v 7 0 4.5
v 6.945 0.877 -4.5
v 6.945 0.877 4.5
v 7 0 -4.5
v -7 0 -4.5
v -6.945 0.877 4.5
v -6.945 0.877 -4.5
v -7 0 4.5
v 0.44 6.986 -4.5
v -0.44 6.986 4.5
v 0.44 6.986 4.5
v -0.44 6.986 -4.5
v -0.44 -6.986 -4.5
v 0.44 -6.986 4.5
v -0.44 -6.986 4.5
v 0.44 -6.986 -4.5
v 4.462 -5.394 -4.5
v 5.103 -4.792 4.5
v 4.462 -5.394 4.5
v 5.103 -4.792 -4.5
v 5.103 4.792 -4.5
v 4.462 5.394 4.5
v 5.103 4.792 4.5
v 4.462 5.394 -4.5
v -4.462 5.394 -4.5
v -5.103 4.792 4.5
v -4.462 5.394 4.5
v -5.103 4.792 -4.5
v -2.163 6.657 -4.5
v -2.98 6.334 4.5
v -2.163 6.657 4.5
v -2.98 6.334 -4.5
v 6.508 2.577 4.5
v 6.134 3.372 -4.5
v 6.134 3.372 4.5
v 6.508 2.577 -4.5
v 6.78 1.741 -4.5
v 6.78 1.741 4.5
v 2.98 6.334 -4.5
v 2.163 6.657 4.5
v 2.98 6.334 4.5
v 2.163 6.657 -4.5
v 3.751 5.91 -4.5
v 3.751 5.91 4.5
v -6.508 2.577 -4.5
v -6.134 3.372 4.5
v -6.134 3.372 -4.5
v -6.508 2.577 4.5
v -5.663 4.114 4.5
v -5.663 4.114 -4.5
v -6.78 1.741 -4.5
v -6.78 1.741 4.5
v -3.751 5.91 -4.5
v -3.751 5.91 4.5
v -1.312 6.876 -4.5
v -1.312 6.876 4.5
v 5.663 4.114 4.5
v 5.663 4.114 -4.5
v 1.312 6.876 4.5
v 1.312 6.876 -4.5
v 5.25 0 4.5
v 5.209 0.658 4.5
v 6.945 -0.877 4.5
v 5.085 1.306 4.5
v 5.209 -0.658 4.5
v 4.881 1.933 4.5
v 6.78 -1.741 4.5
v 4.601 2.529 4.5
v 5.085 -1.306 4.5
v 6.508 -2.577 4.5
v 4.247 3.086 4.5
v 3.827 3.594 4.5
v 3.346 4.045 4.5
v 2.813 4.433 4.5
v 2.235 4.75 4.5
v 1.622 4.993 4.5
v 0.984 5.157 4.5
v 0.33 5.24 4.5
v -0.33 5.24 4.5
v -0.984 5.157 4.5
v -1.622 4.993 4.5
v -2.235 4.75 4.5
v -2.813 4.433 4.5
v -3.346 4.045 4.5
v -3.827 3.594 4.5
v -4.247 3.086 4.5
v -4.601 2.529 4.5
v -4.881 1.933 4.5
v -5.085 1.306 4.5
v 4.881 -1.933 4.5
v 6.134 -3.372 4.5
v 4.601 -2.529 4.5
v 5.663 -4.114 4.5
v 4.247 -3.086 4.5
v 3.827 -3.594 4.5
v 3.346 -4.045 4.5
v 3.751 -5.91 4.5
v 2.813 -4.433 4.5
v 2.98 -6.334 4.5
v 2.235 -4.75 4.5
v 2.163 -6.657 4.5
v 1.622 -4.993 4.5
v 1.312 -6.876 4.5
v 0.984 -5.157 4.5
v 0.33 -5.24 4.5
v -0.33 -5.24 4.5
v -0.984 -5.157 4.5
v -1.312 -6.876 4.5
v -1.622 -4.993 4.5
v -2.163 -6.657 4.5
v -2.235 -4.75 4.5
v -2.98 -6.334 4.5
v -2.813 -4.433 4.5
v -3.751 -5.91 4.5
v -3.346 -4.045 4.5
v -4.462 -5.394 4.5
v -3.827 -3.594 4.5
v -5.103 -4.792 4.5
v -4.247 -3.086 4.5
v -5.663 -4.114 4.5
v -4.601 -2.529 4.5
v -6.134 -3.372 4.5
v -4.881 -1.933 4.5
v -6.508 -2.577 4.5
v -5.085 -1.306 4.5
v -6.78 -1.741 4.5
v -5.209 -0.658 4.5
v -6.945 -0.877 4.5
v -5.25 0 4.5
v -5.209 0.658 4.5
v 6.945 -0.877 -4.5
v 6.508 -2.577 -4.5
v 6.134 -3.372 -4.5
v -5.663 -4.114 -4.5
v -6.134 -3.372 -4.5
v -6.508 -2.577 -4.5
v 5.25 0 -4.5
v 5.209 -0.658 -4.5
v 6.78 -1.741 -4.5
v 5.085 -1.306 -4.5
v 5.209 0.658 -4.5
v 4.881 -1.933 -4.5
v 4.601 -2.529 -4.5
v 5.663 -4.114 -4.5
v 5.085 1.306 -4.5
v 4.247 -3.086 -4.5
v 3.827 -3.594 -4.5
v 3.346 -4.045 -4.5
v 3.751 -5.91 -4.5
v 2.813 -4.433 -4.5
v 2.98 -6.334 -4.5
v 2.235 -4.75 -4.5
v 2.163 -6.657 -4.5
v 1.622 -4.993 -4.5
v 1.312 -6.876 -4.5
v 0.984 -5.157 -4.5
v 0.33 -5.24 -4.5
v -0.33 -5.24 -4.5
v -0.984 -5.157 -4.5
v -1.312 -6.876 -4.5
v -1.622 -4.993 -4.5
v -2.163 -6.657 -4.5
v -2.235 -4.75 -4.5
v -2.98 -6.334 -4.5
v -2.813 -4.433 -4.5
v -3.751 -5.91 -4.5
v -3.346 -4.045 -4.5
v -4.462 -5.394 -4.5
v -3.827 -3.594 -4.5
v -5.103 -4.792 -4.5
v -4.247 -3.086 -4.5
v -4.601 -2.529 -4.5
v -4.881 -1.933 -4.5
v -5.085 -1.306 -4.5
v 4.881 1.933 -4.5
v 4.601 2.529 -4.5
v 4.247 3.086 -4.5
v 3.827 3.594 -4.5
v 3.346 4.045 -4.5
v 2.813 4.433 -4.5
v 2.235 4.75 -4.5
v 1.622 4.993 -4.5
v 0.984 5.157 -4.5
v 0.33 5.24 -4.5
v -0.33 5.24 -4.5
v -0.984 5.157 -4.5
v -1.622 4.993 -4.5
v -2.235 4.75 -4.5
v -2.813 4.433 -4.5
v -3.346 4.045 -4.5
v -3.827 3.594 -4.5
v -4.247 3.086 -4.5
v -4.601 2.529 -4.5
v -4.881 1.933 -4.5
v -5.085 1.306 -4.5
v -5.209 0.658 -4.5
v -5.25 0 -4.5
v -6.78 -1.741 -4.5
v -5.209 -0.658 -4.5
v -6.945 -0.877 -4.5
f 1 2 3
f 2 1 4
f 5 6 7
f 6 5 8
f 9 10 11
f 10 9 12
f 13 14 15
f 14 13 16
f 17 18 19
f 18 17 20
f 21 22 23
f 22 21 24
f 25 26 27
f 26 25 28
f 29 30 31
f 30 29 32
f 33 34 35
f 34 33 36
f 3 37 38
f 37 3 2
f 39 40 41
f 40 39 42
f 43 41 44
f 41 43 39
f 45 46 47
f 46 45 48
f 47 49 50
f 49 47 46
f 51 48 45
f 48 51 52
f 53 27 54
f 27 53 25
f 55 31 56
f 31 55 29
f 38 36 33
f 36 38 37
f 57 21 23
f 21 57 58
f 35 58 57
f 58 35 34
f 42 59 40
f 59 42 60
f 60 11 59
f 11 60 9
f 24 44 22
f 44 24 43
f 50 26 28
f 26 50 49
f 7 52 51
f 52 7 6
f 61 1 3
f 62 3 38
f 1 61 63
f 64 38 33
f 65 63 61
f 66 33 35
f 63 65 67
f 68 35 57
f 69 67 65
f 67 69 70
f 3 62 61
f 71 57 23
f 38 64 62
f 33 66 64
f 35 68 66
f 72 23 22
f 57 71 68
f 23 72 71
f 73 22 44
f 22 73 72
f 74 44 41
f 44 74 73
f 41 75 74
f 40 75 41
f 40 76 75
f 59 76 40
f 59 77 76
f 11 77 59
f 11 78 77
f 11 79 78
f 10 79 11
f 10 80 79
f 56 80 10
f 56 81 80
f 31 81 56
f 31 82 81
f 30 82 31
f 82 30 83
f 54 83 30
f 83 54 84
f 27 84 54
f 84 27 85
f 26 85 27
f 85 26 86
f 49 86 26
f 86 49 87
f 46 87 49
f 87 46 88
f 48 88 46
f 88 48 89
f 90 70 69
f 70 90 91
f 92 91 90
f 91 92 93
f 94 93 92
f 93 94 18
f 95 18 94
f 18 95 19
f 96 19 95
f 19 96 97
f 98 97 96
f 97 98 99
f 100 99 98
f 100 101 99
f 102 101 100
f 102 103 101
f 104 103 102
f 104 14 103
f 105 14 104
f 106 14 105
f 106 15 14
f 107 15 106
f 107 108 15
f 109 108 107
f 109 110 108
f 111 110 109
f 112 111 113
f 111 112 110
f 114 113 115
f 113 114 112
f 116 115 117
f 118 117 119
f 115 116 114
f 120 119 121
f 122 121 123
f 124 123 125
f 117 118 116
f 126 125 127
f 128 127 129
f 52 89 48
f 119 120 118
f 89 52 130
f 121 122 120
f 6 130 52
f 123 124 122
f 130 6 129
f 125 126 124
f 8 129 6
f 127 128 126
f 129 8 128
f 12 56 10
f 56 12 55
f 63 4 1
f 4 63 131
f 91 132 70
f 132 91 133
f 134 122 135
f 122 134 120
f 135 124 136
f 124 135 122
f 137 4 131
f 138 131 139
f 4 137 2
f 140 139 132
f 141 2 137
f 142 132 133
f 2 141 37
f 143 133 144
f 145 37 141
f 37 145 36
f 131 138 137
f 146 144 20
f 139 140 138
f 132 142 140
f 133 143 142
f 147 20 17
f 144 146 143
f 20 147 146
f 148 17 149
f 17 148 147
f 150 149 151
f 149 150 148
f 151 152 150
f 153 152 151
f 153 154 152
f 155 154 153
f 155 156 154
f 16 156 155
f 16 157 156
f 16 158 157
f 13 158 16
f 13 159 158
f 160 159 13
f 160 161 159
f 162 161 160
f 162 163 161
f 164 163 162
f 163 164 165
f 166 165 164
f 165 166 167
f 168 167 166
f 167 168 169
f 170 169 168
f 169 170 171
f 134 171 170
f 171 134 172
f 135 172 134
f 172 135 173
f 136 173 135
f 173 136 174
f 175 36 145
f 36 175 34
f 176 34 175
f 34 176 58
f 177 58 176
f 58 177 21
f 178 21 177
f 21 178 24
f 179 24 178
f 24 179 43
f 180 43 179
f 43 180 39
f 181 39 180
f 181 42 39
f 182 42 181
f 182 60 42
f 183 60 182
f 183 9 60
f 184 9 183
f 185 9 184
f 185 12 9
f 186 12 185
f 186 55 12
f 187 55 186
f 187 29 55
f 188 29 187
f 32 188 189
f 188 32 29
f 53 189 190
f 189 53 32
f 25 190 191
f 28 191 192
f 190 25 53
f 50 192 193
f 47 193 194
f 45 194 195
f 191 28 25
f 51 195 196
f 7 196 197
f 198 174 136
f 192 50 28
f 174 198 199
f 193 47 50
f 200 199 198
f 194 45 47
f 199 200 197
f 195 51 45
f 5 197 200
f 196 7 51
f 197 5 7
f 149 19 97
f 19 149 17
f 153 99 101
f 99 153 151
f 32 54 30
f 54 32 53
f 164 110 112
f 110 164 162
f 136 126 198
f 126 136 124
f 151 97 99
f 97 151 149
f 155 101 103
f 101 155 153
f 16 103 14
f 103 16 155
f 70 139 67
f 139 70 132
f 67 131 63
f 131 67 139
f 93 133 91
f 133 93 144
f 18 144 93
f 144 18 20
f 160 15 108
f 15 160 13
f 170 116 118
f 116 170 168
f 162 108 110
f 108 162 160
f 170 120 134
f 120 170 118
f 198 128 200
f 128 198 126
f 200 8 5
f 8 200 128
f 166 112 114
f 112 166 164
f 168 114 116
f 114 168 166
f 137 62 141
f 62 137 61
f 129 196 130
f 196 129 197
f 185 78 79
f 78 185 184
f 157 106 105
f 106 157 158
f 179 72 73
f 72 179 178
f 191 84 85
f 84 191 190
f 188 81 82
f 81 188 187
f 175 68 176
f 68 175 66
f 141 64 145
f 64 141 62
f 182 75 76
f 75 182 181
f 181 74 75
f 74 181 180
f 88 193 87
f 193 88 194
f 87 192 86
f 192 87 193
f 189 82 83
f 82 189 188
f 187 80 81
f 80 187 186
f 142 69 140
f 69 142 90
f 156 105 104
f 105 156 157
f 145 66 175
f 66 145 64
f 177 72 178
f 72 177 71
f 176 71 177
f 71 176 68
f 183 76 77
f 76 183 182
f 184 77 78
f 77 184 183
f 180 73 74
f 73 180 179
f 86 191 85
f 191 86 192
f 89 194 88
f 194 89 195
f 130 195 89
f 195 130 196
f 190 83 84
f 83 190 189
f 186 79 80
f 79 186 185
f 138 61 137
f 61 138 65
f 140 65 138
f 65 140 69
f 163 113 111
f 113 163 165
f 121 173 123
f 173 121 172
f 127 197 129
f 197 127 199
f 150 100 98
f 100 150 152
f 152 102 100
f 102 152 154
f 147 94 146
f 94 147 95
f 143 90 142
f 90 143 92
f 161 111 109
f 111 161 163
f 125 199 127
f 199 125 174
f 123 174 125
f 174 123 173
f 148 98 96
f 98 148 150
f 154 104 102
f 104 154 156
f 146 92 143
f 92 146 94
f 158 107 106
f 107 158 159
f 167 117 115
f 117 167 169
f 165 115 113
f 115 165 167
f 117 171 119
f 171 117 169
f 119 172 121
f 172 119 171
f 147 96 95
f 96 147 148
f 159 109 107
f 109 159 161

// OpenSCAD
$fn = 50;


difference() {
	union() {
		translate(v = [0, 0, -4.5000000000]) {
			cylinder(h = 9, r = 7.0000000000);
		}
	}
	union() {
		translate(v = [0, 0, -100.0000000000]) {
			cylinder(h = 200, r = 5.2500000000);
		}
	}
}
